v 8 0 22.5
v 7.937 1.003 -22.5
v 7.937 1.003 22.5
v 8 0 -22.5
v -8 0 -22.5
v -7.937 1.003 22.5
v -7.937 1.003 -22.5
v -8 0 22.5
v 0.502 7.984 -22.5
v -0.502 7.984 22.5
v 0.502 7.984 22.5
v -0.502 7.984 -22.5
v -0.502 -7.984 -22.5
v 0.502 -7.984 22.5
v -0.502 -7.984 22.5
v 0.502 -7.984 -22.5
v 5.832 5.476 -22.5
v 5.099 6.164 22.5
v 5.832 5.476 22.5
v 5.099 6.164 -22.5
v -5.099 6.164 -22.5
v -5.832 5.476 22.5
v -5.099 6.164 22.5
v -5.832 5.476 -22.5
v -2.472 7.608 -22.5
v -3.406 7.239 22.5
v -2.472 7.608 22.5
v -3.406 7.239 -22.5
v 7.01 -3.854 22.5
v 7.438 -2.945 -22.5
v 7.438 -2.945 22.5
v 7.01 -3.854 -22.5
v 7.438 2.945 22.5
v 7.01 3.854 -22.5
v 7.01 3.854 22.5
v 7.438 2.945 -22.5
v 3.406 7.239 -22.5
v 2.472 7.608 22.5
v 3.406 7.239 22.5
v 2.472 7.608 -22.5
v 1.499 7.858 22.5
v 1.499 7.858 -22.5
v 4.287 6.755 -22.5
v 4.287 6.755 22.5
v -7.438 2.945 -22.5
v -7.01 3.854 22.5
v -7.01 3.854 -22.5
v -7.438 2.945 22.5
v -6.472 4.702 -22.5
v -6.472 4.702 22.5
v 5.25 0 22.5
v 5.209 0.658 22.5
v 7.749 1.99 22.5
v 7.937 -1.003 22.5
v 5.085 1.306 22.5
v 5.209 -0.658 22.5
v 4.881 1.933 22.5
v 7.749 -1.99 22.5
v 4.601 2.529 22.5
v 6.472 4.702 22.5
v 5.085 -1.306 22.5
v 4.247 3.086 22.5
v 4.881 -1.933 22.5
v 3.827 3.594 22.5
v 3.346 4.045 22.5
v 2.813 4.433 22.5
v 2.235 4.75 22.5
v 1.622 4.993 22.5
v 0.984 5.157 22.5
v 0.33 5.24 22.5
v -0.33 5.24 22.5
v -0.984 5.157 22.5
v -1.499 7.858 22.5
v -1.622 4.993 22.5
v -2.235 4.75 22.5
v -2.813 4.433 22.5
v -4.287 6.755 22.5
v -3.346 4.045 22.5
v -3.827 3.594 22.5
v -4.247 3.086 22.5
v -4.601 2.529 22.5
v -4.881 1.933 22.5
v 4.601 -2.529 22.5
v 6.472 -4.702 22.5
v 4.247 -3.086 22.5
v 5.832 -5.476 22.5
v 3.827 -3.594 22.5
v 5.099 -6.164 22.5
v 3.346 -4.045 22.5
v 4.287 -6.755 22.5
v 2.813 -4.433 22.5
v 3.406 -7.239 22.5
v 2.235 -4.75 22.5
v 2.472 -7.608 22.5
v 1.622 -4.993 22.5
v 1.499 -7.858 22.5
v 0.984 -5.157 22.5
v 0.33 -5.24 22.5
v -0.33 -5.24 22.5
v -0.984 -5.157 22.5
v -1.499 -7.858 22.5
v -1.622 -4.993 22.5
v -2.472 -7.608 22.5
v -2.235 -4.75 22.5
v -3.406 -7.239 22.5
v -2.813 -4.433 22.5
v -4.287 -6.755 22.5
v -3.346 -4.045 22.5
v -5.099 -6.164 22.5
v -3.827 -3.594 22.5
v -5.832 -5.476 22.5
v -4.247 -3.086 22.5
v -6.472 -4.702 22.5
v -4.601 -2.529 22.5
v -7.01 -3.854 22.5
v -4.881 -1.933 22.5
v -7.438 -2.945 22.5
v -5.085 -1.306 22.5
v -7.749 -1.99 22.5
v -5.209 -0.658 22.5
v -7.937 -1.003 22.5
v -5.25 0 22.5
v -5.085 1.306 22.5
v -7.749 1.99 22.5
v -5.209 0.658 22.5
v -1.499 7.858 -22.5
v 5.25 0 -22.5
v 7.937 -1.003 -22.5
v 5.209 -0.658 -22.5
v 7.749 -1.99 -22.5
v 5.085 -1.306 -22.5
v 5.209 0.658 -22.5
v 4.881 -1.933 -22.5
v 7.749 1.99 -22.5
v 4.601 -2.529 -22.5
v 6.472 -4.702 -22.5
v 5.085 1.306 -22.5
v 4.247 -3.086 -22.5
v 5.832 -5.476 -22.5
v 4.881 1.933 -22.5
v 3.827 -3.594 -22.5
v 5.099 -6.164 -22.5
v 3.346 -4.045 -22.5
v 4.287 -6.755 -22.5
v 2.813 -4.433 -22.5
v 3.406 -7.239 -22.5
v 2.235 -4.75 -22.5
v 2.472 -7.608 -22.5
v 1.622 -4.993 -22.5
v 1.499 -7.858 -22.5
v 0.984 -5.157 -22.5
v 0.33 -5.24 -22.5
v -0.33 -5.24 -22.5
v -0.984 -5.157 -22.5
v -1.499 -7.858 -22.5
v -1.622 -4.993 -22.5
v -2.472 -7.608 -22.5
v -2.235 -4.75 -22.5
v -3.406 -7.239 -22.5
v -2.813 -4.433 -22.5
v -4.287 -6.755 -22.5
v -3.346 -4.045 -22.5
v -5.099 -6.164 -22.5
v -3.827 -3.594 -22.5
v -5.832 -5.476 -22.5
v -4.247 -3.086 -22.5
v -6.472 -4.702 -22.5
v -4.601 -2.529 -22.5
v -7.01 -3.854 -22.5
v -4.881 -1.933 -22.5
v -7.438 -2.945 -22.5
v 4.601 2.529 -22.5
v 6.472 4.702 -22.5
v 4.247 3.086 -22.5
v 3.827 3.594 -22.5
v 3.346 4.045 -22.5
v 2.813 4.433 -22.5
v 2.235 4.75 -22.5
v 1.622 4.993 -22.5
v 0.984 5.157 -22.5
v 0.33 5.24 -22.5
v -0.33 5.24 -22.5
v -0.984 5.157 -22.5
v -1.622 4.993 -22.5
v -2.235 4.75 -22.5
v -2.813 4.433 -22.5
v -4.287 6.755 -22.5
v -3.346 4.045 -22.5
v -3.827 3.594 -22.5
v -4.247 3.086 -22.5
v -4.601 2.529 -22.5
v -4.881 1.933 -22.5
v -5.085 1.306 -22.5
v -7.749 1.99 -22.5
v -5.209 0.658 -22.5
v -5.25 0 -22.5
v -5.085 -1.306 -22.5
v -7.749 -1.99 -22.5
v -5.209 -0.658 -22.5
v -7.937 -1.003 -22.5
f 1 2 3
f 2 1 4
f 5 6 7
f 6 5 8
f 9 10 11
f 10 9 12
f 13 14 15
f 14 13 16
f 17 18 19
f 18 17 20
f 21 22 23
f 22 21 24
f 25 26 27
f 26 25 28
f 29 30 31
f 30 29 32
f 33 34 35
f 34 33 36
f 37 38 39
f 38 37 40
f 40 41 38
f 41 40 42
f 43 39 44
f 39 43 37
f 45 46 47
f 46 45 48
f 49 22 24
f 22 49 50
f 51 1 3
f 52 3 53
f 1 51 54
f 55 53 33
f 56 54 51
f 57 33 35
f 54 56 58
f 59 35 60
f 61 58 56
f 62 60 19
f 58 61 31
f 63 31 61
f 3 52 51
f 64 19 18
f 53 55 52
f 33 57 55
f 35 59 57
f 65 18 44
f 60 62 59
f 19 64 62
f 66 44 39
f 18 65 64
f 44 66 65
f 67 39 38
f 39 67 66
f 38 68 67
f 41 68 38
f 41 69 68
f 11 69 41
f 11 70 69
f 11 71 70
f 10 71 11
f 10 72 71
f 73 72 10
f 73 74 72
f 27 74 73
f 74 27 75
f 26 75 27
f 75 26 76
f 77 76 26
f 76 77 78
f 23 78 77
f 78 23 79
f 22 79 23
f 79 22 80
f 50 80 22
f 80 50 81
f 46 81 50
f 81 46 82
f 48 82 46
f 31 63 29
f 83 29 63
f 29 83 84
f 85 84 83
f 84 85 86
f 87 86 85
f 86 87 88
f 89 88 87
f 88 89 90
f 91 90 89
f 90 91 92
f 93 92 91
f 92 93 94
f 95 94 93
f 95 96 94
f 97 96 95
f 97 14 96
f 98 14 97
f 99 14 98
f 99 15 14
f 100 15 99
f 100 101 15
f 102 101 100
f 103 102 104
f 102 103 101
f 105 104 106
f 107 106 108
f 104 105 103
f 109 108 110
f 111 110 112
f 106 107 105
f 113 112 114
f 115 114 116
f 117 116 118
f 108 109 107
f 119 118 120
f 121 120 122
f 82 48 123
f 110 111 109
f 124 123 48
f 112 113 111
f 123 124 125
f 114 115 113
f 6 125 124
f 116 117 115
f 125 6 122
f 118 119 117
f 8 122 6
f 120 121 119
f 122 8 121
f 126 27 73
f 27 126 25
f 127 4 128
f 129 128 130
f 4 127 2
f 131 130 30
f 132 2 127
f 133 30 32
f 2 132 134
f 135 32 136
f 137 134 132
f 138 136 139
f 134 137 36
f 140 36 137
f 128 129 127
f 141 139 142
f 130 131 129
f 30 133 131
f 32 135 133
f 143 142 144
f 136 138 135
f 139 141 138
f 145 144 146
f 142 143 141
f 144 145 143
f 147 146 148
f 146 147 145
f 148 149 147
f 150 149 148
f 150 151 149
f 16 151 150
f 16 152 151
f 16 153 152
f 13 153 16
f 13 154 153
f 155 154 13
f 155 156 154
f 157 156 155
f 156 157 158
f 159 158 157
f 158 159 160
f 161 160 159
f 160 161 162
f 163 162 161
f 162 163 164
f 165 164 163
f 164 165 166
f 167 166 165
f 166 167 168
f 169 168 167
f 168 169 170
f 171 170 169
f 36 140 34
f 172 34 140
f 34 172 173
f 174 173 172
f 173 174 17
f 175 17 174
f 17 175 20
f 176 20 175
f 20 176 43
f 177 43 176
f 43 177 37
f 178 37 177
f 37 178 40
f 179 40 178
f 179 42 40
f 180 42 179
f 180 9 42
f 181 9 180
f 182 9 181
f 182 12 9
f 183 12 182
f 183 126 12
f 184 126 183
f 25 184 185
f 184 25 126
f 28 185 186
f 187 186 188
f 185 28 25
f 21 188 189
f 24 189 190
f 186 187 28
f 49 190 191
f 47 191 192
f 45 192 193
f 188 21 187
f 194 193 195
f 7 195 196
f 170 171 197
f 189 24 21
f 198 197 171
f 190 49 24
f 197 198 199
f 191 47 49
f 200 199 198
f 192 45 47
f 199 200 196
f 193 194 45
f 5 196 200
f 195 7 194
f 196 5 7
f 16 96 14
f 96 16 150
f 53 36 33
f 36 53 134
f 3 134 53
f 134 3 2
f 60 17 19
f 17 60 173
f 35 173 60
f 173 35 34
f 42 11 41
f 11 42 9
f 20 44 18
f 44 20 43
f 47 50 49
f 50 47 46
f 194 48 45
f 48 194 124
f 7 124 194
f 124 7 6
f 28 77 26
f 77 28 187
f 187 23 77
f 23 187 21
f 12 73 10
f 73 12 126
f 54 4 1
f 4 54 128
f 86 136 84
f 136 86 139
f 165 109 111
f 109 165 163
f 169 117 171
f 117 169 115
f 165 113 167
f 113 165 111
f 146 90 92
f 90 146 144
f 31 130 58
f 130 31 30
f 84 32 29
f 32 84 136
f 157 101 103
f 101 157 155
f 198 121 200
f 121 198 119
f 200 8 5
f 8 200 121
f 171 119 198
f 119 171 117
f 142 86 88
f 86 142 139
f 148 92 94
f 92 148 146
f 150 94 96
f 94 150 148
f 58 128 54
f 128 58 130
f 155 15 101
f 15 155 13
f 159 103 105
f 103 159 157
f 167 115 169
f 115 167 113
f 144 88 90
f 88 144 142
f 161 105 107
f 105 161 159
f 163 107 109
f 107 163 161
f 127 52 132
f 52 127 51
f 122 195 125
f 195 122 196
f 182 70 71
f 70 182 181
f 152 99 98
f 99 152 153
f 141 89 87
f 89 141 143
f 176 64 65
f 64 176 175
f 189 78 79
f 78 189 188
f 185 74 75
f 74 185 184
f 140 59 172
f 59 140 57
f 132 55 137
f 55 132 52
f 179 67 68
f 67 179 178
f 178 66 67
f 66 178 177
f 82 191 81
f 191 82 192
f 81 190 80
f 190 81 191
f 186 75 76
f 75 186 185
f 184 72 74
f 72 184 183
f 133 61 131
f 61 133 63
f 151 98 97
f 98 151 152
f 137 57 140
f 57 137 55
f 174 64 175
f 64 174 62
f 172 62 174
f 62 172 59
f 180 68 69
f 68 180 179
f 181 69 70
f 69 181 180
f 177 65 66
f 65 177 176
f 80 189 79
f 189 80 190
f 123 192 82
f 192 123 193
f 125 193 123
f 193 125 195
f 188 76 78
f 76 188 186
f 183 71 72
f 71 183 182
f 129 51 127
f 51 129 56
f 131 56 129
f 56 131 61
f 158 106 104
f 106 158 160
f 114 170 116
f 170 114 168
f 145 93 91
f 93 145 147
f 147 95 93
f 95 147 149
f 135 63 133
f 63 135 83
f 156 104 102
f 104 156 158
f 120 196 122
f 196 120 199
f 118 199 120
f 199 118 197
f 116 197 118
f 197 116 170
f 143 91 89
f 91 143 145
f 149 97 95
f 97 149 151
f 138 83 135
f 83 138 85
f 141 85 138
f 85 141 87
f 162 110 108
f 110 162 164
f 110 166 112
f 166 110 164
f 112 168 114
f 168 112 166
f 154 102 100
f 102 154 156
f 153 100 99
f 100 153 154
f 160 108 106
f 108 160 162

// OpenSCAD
$fn = 50;


difference() {
	union() {
		translate(v = [0, 0, -22.5000000000]) {
			cylinder(h = 45, r = 8.0000000000);
		}
	}
	union() {
		translate(v = [0, 0, -100.0000000000]) {
			cylinder(h = 200, r = 5.2500000000);
		}
	}
}
